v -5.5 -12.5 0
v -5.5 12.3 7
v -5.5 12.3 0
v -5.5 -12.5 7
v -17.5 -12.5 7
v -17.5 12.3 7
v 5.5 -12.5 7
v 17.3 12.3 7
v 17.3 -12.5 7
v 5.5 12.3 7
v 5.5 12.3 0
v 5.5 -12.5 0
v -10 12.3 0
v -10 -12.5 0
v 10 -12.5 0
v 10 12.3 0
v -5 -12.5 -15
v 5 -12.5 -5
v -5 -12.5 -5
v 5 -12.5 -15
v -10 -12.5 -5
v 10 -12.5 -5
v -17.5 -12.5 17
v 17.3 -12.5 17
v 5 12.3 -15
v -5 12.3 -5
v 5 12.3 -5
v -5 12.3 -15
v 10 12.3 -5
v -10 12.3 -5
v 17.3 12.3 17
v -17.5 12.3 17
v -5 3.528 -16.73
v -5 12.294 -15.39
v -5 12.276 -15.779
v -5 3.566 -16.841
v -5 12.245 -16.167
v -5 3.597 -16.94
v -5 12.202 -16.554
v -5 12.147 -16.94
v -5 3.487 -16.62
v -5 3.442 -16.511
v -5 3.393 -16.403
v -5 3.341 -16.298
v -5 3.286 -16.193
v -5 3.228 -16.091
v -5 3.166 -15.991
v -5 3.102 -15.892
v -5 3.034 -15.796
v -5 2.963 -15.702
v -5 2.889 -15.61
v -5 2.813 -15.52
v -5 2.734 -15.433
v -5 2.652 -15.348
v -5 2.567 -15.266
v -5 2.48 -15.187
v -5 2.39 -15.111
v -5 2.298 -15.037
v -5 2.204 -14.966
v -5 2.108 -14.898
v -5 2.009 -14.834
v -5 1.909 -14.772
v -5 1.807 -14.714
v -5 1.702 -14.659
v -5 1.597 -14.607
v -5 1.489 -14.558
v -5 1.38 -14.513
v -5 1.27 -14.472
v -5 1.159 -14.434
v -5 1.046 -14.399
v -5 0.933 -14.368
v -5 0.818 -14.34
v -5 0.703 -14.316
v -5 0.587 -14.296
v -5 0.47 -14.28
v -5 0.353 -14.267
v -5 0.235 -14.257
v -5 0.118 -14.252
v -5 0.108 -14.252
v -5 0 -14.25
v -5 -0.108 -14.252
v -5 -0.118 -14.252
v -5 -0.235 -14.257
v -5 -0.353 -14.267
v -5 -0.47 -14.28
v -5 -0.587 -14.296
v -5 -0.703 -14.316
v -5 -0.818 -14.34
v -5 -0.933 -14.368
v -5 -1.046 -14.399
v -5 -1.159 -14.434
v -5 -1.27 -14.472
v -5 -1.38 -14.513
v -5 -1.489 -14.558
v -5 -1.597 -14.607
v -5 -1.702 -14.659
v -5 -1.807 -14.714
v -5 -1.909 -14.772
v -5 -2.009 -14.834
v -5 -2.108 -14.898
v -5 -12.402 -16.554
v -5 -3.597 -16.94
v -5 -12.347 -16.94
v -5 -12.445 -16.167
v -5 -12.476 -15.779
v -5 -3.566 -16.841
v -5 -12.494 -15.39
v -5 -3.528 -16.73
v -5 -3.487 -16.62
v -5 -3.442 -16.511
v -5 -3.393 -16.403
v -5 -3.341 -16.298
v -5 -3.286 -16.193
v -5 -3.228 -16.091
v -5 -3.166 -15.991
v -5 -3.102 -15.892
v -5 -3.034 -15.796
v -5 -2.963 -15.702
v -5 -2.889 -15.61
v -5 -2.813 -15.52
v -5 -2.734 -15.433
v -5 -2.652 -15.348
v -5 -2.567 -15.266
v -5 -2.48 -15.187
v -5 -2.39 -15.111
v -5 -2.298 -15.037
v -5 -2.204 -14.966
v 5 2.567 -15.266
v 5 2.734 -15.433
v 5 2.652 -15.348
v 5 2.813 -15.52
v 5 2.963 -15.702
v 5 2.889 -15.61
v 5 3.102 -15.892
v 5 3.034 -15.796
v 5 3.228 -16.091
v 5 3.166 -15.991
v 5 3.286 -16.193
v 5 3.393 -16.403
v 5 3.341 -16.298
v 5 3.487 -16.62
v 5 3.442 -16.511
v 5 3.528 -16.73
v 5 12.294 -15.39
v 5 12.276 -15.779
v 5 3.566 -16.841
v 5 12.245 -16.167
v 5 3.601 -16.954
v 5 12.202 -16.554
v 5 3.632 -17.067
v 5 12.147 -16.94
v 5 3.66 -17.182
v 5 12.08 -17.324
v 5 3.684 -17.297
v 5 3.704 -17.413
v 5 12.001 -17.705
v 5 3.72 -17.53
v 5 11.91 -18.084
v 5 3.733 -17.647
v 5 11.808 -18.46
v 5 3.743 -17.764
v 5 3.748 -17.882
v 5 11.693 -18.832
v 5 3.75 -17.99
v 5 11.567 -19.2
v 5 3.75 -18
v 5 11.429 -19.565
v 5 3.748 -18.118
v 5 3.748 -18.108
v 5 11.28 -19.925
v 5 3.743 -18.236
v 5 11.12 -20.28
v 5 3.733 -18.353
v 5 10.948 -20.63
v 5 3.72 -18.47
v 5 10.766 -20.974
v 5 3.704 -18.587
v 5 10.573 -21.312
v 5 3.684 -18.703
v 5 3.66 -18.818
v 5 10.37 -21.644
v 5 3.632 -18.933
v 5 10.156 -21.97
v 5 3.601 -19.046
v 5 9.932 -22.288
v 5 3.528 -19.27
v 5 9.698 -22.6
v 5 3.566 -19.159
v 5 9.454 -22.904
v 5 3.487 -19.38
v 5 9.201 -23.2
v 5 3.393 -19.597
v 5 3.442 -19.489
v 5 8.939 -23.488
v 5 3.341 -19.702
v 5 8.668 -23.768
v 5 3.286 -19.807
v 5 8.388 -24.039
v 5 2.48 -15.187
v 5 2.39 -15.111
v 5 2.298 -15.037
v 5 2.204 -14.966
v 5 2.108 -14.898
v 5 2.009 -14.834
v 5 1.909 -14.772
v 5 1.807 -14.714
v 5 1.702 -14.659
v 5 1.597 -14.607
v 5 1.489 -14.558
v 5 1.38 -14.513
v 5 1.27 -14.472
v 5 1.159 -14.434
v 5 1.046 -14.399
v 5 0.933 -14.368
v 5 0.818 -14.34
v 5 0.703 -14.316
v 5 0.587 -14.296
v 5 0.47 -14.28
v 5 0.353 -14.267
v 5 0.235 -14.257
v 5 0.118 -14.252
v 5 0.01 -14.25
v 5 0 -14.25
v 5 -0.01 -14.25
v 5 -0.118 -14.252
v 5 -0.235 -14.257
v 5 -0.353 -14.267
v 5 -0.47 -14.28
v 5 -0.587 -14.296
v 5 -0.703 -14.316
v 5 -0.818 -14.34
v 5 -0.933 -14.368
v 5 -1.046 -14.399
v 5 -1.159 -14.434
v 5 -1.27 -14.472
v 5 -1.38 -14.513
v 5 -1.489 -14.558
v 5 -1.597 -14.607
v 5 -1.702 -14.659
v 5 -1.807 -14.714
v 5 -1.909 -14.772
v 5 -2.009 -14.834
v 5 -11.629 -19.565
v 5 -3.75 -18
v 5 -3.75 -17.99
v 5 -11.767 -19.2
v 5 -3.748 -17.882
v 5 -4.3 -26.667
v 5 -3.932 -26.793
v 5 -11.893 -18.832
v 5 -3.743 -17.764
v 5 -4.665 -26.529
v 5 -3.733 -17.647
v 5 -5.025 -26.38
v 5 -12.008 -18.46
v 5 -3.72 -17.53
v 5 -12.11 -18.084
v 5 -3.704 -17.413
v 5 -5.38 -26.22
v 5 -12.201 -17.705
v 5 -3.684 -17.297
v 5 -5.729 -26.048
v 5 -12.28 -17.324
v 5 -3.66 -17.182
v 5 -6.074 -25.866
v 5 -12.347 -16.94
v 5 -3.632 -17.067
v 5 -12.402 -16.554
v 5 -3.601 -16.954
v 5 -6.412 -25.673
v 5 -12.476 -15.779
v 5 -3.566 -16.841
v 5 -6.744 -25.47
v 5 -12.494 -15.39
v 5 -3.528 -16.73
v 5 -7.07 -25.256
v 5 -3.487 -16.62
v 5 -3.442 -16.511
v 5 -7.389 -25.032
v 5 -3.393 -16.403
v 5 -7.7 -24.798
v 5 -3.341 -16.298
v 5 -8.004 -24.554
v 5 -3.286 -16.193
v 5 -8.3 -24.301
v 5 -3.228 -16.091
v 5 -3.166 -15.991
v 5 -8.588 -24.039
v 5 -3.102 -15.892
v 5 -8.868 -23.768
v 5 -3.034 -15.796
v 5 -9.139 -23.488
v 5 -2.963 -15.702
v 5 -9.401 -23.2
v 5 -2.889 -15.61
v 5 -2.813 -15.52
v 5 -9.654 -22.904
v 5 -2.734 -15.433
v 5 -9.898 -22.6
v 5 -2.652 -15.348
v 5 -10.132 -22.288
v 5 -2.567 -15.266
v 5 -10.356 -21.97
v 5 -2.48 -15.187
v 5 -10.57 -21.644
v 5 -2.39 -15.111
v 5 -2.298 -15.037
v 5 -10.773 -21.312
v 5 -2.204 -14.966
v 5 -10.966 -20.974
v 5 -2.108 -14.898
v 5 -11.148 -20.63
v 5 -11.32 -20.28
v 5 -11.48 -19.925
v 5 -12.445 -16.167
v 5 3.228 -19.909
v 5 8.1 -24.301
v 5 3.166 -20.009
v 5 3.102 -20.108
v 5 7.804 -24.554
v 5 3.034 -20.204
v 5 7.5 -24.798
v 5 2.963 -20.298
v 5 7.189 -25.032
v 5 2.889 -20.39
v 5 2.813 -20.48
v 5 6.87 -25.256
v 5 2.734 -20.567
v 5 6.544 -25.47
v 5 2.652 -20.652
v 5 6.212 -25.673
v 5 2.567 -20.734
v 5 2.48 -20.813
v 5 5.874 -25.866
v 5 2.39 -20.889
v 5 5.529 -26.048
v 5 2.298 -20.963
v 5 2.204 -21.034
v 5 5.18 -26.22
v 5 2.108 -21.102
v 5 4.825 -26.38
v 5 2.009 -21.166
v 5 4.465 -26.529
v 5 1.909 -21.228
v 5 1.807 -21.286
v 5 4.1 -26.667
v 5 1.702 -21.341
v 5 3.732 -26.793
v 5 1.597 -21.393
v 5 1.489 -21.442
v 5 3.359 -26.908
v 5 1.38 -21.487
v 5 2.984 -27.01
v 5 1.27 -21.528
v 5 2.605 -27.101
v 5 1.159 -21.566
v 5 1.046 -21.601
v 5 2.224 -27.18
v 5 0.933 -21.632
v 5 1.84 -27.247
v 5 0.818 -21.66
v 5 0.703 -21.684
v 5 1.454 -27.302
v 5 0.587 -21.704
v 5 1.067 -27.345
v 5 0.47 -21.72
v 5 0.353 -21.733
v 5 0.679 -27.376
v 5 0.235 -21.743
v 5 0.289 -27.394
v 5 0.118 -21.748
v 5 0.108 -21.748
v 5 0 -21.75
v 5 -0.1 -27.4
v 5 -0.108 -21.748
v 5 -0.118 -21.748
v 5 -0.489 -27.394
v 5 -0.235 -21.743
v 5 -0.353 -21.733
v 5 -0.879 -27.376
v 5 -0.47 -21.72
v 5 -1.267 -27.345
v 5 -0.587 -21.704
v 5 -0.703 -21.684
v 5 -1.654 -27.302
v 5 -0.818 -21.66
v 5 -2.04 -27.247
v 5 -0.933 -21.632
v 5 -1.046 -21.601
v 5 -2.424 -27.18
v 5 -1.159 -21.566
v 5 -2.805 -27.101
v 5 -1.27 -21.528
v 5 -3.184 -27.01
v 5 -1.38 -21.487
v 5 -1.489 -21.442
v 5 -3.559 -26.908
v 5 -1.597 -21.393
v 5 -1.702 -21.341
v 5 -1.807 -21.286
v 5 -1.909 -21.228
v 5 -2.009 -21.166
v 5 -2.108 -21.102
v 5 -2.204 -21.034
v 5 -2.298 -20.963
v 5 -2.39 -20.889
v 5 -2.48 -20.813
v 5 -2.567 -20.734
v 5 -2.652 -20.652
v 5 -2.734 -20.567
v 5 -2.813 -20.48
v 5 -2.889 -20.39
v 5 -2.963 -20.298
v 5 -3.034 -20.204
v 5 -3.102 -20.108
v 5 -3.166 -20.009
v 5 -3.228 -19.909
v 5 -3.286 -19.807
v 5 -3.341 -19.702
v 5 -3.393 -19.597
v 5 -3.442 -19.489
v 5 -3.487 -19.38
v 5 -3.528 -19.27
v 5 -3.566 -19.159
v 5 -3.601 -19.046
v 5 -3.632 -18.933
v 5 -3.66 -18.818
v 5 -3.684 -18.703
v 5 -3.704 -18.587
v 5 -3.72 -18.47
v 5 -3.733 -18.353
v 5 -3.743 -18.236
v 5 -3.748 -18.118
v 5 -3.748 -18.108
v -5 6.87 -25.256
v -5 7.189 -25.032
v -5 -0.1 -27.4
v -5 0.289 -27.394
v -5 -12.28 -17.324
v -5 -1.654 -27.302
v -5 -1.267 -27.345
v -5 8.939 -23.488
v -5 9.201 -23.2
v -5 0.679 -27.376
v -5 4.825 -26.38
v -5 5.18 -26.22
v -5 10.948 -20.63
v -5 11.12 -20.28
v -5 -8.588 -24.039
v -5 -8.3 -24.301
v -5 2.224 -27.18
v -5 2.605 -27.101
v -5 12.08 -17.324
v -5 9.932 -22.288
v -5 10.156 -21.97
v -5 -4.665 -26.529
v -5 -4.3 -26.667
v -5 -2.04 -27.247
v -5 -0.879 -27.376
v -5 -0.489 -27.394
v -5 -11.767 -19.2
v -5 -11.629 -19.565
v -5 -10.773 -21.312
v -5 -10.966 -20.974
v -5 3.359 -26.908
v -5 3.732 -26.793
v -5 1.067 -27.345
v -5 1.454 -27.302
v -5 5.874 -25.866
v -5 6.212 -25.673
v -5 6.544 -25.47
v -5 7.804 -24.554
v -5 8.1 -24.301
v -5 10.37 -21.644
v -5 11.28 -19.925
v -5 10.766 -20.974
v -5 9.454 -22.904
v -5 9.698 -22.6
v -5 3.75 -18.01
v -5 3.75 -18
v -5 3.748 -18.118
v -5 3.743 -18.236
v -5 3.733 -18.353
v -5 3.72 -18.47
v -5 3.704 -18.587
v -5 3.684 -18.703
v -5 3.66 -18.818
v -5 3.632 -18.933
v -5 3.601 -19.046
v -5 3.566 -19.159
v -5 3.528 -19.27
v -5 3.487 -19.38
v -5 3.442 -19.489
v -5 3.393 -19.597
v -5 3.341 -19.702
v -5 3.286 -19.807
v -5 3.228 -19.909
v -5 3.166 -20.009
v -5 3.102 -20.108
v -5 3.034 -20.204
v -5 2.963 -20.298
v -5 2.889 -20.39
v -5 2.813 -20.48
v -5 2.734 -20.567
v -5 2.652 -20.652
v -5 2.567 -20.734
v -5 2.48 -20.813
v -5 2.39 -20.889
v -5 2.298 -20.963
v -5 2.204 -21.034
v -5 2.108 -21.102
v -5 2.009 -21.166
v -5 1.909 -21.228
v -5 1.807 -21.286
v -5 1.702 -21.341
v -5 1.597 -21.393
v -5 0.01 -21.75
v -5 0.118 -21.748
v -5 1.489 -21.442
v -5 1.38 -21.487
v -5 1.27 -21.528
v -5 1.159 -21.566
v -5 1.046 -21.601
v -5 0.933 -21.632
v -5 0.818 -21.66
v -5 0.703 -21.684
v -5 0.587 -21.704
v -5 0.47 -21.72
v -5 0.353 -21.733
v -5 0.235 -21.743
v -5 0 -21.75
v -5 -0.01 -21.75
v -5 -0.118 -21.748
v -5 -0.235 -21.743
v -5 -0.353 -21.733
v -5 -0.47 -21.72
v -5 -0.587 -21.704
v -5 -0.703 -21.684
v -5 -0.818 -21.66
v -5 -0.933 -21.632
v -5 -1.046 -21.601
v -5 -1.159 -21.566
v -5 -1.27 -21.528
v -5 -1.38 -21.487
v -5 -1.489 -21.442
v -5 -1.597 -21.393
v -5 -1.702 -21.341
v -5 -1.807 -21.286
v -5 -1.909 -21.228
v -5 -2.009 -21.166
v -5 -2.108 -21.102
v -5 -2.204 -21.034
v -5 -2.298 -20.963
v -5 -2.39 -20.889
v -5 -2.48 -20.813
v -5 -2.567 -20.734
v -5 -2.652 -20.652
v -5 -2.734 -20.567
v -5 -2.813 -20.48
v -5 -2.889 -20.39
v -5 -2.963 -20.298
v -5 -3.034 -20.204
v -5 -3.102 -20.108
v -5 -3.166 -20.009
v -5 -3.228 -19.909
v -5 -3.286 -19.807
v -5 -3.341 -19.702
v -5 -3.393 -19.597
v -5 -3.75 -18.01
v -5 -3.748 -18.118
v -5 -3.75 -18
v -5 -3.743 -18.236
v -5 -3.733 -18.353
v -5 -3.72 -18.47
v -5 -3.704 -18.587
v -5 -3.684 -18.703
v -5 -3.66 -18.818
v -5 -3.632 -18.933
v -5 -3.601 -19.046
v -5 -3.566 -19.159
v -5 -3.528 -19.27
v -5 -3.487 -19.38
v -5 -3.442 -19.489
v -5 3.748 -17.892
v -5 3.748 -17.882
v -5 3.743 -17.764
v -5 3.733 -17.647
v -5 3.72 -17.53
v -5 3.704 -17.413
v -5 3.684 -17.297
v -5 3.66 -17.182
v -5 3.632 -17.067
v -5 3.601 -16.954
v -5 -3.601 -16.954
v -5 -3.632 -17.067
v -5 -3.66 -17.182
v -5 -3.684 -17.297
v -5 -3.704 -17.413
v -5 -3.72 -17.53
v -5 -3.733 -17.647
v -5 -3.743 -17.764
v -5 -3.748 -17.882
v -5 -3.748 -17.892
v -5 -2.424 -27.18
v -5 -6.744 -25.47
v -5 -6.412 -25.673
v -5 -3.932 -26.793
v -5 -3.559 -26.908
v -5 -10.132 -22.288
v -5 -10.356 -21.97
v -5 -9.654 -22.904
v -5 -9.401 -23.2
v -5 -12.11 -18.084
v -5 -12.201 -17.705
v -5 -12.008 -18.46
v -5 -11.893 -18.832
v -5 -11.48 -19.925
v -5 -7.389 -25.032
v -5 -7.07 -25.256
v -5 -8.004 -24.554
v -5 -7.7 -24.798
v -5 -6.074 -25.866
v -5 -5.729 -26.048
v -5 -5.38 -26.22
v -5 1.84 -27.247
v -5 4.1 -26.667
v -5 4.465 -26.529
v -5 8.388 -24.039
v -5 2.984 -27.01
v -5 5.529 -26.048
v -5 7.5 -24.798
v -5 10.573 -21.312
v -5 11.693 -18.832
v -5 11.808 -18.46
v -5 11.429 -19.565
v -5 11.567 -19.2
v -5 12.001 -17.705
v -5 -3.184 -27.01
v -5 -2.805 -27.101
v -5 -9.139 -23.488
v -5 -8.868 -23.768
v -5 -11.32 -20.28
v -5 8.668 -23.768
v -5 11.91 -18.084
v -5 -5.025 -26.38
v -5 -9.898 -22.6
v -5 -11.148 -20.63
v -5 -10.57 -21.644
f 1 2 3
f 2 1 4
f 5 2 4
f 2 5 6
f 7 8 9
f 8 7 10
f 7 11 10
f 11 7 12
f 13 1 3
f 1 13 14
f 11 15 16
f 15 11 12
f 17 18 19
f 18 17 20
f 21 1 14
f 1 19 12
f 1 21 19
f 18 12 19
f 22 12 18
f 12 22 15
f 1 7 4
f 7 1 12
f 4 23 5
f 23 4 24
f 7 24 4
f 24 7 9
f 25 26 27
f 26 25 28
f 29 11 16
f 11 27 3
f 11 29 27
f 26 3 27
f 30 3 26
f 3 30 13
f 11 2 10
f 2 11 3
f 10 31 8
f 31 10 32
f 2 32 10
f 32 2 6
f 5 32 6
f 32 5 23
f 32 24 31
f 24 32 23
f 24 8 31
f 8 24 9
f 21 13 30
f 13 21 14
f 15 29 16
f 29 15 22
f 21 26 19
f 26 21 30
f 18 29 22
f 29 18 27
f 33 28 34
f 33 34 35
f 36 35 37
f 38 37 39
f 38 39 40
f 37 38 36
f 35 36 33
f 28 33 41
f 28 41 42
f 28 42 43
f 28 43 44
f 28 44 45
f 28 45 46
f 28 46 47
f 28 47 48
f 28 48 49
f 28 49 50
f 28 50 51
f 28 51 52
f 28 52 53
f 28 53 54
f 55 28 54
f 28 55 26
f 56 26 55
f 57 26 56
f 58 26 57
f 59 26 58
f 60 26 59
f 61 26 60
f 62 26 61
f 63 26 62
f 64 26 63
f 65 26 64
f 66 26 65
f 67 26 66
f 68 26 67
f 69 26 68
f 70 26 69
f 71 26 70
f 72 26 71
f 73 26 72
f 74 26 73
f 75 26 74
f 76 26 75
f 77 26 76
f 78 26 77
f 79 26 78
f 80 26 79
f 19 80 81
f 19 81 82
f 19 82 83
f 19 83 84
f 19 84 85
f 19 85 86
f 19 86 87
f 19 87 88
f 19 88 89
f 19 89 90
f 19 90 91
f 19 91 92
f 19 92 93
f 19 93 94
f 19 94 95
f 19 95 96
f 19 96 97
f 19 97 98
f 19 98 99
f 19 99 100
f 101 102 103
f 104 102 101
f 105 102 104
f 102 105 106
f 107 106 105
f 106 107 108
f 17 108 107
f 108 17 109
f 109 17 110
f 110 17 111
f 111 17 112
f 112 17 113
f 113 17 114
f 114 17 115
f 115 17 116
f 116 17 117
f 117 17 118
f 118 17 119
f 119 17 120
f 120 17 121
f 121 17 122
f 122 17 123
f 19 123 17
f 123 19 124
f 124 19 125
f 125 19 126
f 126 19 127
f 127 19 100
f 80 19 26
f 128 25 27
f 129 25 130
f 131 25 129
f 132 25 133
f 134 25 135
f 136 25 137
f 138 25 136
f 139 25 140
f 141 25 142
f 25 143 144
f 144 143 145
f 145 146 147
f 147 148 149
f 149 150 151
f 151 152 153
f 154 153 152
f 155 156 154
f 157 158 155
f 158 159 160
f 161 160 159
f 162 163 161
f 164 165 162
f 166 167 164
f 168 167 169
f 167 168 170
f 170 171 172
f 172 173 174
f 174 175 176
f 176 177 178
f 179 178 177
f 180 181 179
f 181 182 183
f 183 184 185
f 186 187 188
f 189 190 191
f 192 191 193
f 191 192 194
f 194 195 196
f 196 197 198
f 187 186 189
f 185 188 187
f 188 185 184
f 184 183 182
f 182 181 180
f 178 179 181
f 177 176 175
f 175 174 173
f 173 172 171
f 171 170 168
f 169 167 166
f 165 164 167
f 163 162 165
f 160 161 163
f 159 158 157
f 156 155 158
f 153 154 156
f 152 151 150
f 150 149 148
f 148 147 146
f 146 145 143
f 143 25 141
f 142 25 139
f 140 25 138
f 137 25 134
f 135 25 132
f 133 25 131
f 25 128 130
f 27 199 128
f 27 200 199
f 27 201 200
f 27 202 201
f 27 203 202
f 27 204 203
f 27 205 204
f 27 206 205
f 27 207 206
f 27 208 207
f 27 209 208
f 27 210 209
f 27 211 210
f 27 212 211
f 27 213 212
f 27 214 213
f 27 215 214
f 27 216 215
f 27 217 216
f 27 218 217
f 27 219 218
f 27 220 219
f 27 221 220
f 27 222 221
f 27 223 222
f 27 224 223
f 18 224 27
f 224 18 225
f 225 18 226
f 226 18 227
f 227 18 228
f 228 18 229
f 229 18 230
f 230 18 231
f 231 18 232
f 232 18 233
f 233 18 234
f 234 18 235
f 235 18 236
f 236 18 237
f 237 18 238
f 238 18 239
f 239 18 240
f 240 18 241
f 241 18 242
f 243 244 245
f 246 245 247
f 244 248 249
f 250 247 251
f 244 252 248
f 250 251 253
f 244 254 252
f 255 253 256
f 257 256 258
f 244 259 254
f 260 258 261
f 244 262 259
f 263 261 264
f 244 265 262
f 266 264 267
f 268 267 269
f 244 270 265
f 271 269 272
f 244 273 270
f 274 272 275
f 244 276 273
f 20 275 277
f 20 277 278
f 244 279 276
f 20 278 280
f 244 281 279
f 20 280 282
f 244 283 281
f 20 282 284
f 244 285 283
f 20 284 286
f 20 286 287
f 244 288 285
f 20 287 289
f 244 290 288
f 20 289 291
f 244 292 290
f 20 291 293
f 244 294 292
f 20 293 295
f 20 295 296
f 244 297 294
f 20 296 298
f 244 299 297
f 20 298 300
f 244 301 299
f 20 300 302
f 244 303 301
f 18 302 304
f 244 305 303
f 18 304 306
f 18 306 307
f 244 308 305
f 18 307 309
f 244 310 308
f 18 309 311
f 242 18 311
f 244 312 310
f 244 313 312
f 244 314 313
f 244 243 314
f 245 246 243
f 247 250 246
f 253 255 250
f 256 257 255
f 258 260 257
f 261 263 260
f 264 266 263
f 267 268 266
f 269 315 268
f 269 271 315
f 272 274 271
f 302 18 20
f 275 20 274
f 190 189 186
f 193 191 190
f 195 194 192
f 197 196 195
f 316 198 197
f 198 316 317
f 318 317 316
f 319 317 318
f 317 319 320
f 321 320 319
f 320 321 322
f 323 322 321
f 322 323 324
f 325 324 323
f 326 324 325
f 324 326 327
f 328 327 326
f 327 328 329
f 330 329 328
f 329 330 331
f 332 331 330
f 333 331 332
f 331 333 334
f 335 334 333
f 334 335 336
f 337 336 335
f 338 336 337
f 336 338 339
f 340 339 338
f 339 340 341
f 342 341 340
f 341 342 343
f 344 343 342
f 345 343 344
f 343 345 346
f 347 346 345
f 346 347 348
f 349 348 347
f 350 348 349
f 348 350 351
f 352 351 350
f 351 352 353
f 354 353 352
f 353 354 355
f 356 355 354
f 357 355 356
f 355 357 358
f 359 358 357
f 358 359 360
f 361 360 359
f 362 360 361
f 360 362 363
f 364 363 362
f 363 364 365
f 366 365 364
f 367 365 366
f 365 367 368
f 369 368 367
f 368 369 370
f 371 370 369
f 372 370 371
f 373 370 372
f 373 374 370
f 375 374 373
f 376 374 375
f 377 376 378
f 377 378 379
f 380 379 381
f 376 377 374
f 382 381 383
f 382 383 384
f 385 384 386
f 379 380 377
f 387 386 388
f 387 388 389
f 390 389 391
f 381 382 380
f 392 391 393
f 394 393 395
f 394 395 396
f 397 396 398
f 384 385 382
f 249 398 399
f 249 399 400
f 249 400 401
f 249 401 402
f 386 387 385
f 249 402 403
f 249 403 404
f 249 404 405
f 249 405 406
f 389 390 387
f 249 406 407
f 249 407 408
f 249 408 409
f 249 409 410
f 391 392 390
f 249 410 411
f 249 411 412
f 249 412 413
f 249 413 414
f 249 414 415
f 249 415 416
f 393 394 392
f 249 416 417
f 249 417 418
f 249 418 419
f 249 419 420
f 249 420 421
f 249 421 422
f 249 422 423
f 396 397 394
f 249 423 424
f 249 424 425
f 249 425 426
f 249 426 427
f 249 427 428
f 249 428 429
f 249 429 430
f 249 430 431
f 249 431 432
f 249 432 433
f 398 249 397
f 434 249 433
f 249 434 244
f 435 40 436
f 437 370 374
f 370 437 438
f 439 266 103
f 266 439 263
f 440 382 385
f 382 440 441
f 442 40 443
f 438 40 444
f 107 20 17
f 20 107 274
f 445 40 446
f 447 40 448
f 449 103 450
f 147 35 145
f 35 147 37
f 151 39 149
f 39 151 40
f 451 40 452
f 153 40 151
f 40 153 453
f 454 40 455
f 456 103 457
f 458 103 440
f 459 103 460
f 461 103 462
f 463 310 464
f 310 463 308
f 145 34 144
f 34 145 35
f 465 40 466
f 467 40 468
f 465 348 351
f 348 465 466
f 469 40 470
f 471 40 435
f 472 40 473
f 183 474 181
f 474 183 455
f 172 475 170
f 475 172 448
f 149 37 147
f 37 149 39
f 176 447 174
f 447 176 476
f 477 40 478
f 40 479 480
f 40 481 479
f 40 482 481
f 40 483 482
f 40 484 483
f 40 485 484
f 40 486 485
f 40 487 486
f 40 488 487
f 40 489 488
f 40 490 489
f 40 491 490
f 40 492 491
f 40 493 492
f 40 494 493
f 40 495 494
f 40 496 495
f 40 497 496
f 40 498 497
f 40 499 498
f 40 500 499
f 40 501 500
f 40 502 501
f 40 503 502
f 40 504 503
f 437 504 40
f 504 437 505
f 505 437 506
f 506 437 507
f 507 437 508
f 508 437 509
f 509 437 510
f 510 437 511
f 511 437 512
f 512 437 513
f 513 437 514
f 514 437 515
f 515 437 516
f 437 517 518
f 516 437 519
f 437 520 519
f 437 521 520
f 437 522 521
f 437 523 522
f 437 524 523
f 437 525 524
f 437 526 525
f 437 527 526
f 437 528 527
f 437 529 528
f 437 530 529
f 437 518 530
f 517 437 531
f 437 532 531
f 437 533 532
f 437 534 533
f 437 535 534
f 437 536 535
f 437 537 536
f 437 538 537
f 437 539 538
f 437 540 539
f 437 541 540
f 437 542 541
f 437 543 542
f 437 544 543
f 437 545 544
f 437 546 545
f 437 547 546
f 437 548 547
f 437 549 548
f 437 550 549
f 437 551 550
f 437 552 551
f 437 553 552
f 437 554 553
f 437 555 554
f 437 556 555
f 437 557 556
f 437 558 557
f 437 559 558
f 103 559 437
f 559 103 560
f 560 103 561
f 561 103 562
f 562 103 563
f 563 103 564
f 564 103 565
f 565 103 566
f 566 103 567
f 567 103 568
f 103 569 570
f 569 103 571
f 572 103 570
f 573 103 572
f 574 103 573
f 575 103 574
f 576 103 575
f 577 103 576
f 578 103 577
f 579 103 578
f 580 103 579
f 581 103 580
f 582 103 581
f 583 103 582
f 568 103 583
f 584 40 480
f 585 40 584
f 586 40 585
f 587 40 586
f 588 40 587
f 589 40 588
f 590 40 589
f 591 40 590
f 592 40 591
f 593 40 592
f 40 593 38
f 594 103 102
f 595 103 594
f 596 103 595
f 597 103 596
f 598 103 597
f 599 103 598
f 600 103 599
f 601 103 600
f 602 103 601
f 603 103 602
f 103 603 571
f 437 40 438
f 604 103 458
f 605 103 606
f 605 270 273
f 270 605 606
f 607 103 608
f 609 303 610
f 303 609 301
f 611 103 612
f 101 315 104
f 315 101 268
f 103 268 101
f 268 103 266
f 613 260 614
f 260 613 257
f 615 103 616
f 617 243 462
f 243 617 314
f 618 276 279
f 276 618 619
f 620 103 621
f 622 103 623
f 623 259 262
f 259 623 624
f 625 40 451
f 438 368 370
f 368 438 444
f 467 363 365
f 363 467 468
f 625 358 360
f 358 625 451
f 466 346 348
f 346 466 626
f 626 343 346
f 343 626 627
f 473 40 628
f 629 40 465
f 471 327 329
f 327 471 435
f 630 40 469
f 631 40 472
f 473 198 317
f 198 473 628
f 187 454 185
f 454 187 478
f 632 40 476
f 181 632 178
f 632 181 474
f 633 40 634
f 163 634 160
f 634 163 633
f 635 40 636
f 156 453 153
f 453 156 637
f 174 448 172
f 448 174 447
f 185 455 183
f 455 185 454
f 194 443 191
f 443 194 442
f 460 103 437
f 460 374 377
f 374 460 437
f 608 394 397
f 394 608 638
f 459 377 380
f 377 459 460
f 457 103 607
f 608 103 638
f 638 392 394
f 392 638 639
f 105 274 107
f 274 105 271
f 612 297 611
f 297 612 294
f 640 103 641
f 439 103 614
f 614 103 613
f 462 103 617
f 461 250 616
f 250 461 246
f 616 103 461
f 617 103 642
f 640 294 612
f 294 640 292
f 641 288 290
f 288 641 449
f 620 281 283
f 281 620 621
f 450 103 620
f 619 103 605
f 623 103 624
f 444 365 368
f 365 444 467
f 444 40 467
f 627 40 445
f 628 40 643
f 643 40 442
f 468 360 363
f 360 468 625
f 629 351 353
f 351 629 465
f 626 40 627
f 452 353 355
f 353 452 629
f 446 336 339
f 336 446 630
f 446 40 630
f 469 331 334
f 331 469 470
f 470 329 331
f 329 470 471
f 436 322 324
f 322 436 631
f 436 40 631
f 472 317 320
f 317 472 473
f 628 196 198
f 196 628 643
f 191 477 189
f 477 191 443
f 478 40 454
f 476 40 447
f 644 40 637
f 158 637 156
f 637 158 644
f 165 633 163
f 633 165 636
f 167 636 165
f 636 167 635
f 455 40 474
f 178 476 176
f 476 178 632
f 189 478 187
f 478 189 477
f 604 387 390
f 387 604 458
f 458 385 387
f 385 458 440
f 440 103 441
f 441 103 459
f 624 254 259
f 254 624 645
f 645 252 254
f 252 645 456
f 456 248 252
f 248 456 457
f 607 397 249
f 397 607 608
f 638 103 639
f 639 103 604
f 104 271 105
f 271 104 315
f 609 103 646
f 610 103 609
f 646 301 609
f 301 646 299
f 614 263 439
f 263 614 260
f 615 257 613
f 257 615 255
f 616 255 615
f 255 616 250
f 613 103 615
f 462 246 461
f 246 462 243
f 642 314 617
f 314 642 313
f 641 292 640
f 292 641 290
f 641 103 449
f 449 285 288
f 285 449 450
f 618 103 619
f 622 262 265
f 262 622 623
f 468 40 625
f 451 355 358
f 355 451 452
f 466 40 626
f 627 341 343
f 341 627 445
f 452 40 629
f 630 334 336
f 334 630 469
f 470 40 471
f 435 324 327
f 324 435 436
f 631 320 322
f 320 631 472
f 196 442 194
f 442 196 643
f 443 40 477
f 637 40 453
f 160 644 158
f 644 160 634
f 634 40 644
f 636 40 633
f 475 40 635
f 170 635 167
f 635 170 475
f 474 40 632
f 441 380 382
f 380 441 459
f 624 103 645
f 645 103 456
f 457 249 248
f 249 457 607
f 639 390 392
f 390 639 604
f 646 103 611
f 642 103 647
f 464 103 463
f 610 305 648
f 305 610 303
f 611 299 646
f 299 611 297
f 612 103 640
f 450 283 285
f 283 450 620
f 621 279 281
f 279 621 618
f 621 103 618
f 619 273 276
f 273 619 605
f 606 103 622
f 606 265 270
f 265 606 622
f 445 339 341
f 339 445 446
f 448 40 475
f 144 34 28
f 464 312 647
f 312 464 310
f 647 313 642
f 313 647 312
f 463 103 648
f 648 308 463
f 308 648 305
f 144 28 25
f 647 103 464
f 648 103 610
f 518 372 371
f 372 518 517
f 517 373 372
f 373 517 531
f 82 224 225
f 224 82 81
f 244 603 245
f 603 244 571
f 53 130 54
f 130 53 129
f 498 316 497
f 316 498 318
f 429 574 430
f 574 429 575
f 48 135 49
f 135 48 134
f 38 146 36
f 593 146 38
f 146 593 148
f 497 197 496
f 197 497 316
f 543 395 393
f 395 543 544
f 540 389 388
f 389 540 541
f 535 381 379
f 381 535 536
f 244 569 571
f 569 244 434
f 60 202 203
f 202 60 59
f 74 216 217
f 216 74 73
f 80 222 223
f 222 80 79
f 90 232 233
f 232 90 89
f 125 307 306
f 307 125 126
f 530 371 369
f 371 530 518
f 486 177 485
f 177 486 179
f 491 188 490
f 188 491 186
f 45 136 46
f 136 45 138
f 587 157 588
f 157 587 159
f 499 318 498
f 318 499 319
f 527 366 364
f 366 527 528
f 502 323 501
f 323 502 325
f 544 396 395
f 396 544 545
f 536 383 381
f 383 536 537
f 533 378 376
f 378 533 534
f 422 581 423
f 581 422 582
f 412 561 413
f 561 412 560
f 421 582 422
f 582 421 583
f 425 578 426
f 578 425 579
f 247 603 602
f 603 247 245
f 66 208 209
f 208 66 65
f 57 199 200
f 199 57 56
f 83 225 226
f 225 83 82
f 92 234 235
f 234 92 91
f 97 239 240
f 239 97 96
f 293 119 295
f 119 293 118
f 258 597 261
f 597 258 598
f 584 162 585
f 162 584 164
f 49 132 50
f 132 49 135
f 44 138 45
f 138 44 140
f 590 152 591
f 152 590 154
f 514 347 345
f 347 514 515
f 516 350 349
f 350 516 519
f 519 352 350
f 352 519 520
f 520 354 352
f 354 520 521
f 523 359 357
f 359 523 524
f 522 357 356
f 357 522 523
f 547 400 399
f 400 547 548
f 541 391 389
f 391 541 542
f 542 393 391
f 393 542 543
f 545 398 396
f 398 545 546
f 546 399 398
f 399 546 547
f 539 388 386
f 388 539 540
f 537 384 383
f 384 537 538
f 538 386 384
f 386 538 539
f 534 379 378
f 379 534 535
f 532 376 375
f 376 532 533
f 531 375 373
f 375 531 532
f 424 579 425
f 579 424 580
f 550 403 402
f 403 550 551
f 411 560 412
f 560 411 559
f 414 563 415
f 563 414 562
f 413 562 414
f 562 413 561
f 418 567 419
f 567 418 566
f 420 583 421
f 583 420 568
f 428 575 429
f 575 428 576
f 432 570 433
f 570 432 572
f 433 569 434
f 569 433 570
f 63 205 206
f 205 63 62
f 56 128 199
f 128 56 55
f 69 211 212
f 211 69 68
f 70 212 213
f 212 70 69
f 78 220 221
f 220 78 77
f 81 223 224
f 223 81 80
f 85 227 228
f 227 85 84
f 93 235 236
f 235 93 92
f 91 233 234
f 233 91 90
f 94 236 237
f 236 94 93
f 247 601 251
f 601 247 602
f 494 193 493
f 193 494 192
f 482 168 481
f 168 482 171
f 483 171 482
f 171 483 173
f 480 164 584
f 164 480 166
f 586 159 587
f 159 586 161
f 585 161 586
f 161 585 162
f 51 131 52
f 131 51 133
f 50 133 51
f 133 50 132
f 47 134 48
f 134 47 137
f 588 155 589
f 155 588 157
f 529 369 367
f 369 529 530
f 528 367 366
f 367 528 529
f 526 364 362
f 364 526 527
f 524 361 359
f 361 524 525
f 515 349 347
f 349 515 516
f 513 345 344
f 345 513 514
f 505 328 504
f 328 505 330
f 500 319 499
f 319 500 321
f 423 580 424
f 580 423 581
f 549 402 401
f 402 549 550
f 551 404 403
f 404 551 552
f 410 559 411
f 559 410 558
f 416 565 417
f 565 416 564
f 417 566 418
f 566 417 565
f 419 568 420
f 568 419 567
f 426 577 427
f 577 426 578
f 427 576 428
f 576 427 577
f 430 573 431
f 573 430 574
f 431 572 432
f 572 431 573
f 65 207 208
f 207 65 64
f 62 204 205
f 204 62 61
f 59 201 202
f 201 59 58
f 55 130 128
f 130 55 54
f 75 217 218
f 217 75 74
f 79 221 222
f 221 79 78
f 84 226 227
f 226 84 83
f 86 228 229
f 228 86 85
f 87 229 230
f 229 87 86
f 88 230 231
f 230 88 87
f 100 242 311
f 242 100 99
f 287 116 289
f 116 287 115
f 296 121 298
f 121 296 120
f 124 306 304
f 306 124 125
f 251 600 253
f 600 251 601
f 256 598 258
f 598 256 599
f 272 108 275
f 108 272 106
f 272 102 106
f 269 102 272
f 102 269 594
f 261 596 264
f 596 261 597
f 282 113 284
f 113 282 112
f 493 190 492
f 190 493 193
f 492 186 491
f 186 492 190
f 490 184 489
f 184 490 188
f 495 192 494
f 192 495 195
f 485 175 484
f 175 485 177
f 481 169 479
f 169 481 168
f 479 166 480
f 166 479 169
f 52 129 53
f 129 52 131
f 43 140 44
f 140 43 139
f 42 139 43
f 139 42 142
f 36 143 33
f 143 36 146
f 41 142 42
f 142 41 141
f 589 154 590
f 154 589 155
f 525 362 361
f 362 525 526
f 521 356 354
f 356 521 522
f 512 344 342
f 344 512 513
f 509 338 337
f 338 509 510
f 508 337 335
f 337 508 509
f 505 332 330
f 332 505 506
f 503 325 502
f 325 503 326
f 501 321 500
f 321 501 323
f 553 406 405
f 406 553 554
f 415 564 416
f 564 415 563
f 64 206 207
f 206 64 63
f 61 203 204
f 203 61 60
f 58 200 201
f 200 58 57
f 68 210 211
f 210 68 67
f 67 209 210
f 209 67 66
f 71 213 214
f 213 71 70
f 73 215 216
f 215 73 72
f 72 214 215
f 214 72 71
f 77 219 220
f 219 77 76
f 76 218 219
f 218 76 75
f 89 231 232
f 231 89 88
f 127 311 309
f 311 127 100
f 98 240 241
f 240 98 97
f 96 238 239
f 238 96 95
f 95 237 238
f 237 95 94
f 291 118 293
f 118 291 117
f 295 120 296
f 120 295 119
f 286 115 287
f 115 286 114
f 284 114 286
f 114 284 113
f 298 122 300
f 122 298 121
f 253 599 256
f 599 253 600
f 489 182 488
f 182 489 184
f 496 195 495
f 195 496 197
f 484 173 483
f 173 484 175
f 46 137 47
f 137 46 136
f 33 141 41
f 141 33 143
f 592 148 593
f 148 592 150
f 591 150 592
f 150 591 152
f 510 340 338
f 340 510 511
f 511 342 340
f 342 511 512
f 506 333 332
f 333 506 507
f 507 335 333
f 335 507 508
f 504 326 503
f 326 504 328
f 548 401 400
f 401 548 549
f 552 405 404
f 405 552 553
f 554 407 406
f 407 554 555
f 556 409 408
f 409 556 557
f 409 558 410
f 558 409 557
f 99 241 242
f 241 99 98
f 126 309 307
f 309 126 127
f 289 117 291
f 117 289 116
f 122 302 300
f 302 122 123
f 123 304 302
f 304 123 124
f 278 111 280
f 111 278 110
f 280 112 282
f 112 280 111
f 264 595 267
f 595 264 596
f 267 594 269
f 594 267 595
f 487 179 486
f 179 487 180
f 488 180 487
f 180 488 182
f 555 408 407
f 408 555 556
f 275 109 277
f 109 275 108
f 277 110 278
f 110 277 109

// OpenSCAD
difference(){
    
    union(){
        translate ([-5.5, -12.5, 0]){

        cube ([11, 24.8, 7]);
        }

        translate ([-17.5, -12.5, 7]){

        cube ([34.8, 24.8, 10]);
        }

        translate ([-10, -12.5, -5]){

        cube ([20, 24.8, 5]);
        }


        translate([-5, -12.5, -15]){
            cube ([10, 24.8, 10]);
        }

        translate([-5, -0.1, -15]){
            rotate([0, 90, 0]){
                cylinder(h=10, r1=12.4, r2=12.4, $fn=200);
            }
        }
    }
    translate([-6, 0, -18]){
        rotate([0, 90, 0]){
            cylinder(h=12, r1=7.5/2, r2=7.5/2, $fn=200);
        }
    }
    
}
